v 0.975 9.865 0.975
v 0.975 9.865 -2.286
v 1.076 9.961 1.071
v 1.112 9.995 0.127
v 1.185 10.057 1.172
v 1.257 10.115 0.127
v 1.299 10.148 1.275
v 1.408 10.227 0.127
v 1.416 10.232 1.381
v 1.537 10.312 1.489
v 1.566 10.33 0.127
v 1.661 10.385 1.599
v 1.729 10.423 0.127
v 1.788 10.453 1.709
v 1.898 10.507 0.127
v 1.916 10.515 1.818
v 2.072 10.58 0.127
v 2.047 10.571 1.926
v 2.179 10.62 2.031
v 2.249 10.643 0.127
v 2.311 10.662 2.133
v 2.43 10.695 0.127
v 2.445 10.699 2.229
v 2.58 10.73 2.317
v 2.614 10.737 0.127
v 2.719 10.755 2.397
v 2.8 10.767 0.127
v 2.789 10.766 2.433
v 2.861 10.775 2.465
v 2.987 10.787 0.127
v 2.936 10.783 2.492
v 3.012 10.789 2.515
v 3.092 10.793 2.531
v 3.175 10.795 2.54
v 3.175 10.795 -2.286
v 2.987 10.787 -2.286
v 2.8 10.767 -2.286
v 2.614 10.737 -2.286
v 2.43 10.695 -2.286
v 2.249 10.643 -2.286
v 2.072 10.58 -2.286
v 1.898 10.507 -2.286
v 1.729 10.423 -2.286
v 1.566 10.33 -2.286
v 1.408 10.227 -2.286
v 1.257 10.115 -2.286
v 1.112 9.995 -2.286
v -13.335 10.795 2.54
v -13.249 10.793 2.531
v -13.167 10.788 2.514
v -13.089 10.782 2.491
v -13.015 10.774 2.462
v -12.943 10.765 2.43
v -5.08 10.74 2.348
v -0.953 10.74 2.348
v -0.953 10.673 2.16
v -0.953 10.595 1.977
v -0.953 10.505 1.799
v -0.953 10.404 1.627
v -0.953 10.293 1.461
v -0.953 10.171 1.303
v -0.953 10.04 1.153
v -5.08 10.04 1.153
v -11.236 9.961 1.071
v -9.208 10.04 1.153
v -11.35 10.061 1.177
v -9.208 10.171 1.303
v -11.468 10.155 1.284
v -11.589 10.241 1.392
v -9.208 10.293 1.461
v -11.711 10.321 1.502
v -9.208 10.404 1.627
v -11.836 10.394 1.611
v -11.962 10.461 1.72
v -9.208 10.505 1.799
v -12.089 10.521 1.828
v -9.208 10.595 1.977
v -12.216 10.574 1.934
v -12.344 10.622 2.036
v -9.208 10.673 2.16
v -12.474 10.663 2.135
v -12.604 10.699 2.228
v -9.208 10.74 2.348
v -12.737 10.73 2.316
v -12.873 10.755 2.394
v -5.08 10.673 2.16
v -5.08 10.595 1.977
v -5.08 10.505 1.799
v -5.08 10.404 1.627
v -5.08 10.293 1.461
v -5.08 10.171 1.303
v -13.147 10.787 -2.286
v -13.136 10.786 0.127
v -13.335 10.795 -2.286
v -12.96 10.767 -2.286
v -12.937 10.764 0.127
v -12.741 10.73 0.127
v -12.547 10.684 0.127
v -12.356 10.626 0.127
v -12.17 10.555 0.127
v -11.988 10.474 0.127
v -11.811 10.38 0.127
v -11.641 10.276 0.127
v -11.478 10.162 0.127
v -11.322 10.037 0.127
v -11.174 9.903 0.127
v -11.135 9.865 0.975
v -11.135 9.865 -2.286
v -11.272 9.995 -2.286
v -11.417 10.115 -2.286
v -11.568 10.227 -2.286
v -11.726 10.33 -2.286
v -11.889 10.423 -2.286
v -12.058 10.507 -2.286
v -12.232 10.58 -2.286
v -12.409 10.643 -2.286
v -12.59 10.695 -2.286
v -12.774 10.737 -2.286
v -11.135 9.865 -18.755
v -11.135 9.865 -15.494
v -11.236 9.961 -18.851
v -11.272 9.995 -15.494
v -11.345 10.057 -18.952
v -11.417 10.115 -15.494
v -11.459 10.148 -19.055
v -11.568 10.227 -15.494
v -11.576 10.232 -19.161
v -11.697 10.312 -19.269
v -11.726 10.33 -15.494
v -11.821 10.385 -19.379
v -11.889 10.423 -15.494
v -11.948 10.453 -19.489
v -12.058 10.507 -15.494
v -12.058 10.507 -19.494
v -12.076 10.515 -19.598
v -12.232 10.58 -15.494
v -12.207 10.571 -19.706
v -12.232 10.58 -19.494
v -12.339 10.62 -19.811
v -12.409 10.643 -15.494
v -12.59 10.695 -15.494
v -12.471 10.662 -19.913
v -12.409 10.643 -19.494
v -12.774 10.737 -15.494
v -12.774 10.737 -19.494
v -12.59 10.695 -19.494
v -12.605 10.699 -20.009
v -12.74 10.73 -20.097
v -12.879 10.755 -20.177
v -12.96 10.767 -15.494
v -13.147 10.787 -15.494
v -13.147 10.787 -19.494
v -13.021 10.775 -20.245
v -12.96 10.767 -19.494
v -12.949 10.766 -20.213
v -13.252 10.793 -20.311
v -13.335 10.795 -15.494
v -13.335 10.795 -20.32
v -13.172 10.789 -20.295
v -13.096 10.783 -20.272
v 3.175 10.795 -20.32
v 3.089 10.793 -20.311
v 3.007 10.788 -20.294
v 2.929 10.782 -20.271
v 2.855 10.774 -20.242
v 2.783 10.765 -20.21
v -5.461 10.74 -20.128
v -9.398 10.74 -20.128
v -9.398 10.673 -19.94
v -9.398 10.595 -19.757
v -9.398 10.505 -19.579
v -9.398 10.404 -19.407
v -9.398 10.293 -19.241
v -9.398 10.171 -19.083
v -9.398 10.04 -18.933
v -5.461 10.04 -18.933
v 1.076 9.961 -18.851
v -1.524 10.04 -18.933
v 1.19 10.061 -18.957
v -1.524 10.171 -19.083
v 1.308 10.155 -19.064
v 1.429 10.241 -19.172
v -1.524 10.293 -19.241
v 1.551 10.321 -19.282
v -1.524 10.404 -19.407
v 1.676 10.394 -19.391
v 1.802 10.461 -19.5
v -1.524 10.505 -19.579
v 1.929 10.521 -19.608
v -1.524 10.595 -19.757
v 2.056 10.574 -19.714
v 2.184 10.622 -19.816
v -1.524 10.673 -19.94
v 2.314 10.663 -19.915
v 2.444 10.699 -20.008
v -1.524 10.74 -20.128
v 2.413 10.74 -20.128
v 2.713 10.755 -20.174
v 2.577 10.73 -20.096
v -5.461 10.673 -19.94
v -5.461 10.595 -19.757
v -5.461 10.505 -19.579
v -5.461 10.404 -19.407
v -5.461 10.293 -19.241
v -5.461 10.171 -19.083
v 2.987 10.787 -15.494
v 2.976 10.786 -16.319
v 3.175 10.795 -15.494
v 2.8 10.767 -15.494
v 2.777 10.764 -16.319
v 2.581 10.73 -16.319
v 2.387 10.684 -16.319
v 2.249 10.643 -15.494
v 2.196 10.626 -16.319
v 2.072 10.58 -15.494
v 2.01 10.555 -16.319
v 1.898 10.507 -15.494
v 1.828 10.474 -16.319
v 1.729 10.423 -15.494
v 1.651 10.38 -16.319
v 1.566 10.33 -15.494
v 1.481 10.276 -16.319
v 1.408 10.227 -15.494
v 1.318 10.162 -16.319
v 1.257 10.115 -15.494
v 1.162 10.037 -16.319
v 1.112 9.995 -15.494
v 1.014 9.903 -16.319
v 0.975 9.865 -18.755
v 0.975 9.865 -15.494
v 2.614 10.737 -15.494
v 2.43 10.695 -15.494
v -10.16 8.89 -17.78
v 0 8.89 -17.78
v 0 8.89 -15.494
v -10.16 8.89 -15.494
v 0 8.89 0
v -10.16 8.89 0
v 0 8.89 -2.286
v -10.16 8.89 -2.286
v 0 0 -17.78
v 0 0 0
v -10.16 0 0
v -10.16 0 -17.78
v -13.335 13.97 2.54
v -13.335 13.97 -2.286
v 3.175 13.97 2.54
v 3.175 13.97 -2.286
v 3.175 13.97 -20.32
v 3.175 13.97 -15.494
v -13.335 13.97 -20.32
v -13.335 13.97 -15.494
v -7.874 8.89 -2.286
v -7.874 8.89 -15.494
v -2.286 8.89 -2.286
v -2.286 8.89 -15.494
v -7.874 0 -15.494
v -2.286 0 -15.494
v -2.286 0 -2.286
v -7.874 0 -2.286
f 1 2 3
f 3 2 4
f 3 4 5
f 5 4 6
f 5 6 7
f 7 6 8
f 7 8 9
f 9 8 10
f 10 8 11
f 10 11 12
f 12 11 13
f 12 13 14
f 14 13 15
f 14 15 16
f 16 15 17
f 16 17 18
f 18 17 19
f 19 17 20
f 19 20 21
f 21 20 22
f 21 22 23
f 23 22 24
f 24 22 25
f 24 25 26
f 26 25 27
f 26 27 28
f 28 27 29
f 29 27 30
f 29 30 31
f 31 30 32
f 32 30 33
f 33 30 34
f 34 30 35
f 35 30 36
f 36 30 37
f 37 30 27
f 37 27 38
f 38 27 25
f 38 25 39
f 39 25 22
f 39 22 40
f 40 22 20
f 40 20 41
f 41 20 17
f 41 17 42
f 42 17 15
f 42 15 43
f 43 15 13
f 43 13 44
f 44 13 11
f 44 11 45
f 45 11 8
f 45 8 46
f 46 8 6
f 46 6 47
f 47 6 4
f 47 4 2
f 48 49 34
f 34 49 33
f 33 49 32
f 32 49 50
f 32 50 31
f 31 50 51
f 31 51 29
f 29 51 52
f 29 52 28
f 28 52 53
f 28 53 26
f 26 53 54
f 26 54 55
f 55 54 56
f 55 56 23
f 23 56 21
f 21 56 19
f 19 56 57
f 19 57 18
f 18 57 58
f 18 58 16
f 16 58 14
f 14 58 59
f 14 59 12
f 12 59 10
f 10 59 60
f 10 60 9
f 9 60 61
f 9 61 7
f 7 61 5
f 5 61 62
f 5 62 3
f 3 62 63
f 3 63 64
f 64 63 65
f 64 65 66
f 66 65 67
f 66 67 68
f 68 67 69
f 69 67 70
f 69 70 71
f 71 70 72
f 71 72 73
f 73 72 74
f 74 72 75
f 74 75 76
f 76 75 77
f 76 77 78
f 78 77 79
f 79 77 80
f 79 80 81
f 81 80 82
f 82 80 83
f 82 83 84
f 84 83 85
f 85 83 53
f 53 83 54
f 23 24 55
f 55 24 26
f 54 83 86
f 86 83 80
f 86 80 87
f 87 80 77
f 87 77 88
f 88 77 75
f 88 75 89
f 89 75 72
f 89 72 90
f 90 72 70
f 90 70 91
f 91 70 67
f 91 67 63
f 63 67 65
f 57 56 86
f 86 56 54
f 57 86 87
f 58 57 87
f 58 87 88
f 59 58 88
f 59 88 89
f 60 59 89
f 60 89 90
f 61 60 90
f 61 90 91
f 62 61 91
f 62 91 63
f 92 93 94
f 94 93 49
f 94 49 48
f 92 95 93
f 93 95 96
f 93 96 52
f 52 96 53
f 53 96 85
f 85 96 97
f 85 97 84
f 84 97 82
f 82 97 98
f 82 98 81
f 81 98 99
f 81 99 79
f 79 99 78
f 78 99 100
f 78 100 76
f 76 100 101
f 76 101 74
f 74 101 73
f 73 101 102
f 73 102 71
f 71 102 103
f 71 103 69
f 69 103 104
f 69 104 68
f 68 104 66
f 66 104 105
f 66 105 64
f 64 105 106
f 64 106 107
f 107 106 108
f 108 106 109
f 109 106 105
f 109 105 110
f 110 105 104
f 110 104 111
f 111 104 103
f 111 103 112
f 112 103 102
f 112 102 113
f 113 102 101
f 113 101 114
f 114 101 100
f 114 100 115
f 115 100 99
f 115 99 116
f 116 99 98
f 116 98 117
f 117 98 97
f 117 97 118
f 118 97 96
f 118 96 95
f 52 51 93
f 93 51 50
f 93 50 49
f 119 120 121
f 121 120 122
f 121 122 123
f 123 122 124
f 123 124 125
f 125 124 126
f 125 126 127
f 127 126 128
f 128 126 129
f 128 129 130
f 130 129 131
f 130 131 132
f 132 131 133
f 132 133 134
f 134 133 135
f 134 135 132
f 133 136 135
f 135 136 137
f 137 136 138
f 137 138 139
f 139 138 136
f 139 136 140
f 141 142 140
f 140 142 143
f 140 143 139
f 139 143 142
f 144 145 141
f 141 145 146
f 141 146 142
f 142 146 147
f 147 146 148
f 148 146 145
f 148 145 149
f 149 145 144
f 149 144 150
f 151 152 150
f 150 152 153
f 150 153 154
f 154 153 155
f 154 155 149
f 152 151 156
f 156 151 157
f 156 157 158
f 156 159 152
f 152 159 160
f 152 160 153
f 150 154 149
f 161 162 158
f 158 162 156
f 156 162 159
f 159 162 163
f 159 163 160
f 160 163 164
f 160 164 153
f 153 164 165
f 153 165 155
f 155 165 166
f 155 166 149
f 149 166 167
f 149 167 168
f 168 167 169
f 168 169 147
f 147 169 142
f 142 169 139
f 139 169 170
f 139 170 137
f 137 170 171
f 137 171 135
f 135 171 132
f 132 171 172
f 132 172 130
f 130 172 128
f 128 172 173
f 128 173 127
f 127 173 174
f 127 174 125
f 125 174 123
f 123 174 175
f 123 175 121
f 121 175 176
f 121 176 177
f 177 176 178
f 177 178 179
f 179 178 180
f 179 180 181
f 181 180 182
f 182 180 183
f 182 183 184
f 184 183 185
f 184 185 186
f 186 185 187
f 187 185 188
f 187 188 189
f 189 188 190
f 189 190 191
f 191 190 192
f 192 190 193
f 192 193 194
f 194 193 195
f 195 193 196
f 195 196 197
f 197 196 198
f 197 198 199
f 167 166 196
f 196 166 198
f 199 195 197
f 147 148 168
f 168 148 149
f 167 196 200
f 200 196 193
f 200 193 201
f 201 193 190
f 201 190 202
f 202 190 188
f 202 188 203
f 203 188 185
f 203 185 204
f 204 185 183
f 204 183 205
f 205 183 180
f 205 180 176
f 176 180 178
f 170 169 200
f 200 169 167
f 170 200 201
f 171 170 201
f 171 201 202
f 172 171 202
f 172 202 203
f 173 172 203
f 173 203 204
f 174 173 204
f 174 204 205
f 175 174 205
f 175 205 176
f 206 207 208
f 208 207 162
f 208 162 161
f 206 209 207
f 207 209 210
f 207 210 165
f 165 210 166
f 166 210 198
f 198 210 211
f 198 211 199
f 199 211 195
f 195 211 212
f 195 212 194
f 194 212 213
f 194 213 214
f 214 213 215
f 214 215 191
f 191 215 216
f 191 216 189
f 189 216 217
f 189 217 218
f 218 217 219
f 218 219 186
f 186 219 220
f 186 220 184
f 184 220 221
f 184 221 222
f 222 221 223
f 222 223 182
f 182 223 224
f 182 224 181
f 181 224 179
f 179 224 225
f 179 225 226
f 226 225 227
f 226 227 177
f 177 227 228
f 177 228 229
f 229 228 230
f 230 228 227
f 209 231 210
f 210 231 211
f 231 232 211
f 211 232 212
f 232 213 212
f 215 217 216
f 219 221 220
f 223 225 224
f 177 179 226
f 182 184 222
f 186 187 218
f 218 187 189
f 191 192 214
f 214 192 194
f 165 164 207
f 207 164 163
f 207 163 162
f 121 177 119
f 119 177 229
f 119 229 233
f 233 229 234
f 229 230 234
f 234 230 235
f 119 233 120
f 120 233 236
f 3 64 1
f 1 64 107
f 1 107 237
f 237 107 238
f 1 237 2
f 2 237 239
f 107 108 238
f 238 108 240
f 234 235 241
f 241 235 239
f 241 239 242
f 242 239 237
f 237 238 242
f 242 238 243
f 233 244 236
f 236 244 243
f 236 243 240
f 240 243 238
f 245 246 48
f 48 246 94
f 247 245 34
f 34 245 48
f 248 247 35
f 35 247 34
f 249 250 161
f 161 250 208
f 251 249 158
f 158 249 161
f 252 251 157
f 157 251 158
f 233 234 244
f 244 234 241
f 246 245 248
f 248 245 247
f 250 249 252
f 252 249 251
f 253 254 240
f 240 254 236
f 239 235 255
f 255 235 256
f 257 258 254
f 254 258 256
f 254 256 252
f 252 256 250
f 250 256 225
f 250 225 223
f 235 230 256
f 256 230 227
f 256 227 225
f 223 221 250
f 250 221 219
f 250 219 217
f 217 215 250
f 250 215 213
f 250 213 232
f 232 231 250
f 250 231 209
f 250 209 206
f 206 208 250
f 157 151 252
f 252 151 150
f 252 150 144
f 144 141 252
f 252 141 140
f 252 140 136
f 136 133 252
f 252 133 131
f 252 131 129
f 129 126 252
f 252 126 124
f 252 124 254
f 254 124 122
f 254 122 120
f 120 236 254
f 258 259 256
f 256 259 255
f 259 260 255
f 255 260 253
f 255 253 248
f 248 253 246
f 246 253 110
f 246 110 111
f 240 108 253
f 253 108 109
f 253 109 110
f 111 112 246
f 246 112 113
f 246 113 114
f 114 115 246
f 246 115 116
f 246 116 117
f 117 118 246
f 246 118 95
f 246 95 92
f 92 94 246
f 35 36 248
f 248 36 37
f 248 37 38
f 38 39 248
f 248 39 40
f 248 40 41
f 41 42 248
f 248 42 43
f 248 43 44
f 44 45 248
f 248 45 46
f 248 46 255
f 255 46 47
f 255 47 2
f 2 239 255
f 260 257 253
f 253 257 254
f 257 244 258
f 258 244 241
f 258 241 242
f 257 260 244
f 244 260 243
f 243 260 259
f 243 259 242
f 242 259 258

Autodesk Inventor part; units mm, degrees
ref_plane "YZ Plane" through (0, 0, 0) normal (1, 0, 0) x (0, 1, 0)
ref_plane "XZ Plane" through (0, 0, 0) normal (0, 1, 0) x (-1, 0, 0)
ref_plane "XY Plane" through (0, 0, 0) normal (0, 0, 1) x (1, 0, 0)
sketch "Sketch1" plane through (0, 0, 0) normal (0, 1, 0) x (-1, 0, 0)
  line L0 (0, 0) -> (10.16, 0)
  line L1 (10.16, 0) -> (10.16, -17.78)
  line L2 (10.16, -17.78) -> (0, -17.78)
  line L3 (0, -17.78) -> (0, 0)
  line L4 (7.874, -15.494) -> (7.874, -2.286)
  line L5 (7.874, -2.286) -> (2.286, -2.286)
  line L6 (2.286, -2.286) -> (2.286, -15.494)
  line L7 (2.286, -15.494) -> (7.874, -15.494)
  dimension "d0" = 17.78
  dimension "d1" = 10.16
  dimension "d2" = 2.286
extrude "Extrusion1" add sketch "Sketch1" along normal blind 8.89
sketch "Sketch2" plane through (0, 8.89, 0) normal (0, 1, 0) x (1, 0, 0)
  line L0 (-10.16, 0) -> (0, 0) projected
  line L1 (-2.286, 2.286) -> (-7.874, 2.286) projected
  line L2 (-7.874, 15.494) -> (-2.286, 15.494) projected
  line L3 (0, 17.78) -> (-10.16, 17.78) projected
  line L4 (-10.16, 0) -> (0, 0)
  line L5 (0, 0) -> (0, 2.286)
  line L6 (0, 2.286) -> (-10.16, 2.286)
  line L7 (-10.16, 2.286) -> (-10.16, 0)
  line L8 (-10.16, 0) -> (-10.16, 17.78) projected
  line L9 (0, 17.78) -> (-10.16, 17.78)
  line L10 (-10.16, 17.78) -> (-10.16, 15.494)
  line L11 (-10.16, 15.494) -> (0, 15.494)
  line L12 (0, 15.494) -> (0, 17.78)
extrude "Extrusion2" add sketch "Sketch2" along normal blind 5.08
sketch "Sketch3" plane through (0, 13.97, 0) normal (0, 1, 0) x (1, 0, 0)
  line L0 (-10.16, 0) -> (0, 0) projected
  line L1 (0, 17.78) -> (-10.16, 17.78) projected
  line L2 (-10.16, 15.494) -> (0, 15.494) projected
  line L3 (0, 15.494) -> (0, 17.78) projected
  line L4 (0, 17.78) -> (-10.16, 17.78) projected
  line L5 (-10.16, 17.78) -> (-10.16, 15.494) projected
  line L6 (-10.16, 0) -> (0, 0) projected
  line L7 (0, 0) -> (0, 2.286) projected
  line L8 (0, 2.286) -> (-10.16, 2.286) projected
  line L9 (-10.16, 2.286) -> (-10.16, 0) projected
  line L10 (-13.335, 2.286) -> (3.175, 2.286)
  line L11 (3.175, 2.286) -> (3.175, -2.54)
  line L12 (3.175, -2.54) -> (-13.335, -2.54)
  line L13 (-13.335, -2.54) -> (-13.335, 2.286)
  line L14 (-13.335, 15.494) -> (3.175, 15.494)
  line L15 (3.175, 15.494) -> (3.175, 20.32)
  line L16 (3.175, 20.32) -> (-13.335, 20.32)
  line L17 (-13.335, 20.32) -> (-13.335, 15.494)
  dimension "d7" = 3.175
  dimension "d8" = 3.175
  dimension "d9" = 2.54
  dimension "d10" = 2.54
extrude "Extrusion3" add sketch "Sketch3" against normal blind 3.175 contours L0 L7 L10 L11 L12 L13 L9 | L1 L5 L14 L17 L16 L15 L3
chamfer "Chamfer1" distance 1.905 angle 45 6 edges at (-5.08, 10.795, 0) (0, 10.795, -1.143) (-10.16, 10.795, -1.143) (0, 10.795, -16.637) (-5.08, 10.795, -17.78) (-10.16, 10.795, -16.637)
fillet "Fillet1" radius 3.175 6 edges at (1.905, 10.795, -17.5895) (-5.08, 10.795, -19.685) (-12.065, 10.795, -17.5895) (-12.065, 10.795, -0.1905) (-5.08, 10.795, 1.905) (1.905, 10.795, -0.1905)
properties part number "ForeConnectorHolder" material "ABS Plastic"
